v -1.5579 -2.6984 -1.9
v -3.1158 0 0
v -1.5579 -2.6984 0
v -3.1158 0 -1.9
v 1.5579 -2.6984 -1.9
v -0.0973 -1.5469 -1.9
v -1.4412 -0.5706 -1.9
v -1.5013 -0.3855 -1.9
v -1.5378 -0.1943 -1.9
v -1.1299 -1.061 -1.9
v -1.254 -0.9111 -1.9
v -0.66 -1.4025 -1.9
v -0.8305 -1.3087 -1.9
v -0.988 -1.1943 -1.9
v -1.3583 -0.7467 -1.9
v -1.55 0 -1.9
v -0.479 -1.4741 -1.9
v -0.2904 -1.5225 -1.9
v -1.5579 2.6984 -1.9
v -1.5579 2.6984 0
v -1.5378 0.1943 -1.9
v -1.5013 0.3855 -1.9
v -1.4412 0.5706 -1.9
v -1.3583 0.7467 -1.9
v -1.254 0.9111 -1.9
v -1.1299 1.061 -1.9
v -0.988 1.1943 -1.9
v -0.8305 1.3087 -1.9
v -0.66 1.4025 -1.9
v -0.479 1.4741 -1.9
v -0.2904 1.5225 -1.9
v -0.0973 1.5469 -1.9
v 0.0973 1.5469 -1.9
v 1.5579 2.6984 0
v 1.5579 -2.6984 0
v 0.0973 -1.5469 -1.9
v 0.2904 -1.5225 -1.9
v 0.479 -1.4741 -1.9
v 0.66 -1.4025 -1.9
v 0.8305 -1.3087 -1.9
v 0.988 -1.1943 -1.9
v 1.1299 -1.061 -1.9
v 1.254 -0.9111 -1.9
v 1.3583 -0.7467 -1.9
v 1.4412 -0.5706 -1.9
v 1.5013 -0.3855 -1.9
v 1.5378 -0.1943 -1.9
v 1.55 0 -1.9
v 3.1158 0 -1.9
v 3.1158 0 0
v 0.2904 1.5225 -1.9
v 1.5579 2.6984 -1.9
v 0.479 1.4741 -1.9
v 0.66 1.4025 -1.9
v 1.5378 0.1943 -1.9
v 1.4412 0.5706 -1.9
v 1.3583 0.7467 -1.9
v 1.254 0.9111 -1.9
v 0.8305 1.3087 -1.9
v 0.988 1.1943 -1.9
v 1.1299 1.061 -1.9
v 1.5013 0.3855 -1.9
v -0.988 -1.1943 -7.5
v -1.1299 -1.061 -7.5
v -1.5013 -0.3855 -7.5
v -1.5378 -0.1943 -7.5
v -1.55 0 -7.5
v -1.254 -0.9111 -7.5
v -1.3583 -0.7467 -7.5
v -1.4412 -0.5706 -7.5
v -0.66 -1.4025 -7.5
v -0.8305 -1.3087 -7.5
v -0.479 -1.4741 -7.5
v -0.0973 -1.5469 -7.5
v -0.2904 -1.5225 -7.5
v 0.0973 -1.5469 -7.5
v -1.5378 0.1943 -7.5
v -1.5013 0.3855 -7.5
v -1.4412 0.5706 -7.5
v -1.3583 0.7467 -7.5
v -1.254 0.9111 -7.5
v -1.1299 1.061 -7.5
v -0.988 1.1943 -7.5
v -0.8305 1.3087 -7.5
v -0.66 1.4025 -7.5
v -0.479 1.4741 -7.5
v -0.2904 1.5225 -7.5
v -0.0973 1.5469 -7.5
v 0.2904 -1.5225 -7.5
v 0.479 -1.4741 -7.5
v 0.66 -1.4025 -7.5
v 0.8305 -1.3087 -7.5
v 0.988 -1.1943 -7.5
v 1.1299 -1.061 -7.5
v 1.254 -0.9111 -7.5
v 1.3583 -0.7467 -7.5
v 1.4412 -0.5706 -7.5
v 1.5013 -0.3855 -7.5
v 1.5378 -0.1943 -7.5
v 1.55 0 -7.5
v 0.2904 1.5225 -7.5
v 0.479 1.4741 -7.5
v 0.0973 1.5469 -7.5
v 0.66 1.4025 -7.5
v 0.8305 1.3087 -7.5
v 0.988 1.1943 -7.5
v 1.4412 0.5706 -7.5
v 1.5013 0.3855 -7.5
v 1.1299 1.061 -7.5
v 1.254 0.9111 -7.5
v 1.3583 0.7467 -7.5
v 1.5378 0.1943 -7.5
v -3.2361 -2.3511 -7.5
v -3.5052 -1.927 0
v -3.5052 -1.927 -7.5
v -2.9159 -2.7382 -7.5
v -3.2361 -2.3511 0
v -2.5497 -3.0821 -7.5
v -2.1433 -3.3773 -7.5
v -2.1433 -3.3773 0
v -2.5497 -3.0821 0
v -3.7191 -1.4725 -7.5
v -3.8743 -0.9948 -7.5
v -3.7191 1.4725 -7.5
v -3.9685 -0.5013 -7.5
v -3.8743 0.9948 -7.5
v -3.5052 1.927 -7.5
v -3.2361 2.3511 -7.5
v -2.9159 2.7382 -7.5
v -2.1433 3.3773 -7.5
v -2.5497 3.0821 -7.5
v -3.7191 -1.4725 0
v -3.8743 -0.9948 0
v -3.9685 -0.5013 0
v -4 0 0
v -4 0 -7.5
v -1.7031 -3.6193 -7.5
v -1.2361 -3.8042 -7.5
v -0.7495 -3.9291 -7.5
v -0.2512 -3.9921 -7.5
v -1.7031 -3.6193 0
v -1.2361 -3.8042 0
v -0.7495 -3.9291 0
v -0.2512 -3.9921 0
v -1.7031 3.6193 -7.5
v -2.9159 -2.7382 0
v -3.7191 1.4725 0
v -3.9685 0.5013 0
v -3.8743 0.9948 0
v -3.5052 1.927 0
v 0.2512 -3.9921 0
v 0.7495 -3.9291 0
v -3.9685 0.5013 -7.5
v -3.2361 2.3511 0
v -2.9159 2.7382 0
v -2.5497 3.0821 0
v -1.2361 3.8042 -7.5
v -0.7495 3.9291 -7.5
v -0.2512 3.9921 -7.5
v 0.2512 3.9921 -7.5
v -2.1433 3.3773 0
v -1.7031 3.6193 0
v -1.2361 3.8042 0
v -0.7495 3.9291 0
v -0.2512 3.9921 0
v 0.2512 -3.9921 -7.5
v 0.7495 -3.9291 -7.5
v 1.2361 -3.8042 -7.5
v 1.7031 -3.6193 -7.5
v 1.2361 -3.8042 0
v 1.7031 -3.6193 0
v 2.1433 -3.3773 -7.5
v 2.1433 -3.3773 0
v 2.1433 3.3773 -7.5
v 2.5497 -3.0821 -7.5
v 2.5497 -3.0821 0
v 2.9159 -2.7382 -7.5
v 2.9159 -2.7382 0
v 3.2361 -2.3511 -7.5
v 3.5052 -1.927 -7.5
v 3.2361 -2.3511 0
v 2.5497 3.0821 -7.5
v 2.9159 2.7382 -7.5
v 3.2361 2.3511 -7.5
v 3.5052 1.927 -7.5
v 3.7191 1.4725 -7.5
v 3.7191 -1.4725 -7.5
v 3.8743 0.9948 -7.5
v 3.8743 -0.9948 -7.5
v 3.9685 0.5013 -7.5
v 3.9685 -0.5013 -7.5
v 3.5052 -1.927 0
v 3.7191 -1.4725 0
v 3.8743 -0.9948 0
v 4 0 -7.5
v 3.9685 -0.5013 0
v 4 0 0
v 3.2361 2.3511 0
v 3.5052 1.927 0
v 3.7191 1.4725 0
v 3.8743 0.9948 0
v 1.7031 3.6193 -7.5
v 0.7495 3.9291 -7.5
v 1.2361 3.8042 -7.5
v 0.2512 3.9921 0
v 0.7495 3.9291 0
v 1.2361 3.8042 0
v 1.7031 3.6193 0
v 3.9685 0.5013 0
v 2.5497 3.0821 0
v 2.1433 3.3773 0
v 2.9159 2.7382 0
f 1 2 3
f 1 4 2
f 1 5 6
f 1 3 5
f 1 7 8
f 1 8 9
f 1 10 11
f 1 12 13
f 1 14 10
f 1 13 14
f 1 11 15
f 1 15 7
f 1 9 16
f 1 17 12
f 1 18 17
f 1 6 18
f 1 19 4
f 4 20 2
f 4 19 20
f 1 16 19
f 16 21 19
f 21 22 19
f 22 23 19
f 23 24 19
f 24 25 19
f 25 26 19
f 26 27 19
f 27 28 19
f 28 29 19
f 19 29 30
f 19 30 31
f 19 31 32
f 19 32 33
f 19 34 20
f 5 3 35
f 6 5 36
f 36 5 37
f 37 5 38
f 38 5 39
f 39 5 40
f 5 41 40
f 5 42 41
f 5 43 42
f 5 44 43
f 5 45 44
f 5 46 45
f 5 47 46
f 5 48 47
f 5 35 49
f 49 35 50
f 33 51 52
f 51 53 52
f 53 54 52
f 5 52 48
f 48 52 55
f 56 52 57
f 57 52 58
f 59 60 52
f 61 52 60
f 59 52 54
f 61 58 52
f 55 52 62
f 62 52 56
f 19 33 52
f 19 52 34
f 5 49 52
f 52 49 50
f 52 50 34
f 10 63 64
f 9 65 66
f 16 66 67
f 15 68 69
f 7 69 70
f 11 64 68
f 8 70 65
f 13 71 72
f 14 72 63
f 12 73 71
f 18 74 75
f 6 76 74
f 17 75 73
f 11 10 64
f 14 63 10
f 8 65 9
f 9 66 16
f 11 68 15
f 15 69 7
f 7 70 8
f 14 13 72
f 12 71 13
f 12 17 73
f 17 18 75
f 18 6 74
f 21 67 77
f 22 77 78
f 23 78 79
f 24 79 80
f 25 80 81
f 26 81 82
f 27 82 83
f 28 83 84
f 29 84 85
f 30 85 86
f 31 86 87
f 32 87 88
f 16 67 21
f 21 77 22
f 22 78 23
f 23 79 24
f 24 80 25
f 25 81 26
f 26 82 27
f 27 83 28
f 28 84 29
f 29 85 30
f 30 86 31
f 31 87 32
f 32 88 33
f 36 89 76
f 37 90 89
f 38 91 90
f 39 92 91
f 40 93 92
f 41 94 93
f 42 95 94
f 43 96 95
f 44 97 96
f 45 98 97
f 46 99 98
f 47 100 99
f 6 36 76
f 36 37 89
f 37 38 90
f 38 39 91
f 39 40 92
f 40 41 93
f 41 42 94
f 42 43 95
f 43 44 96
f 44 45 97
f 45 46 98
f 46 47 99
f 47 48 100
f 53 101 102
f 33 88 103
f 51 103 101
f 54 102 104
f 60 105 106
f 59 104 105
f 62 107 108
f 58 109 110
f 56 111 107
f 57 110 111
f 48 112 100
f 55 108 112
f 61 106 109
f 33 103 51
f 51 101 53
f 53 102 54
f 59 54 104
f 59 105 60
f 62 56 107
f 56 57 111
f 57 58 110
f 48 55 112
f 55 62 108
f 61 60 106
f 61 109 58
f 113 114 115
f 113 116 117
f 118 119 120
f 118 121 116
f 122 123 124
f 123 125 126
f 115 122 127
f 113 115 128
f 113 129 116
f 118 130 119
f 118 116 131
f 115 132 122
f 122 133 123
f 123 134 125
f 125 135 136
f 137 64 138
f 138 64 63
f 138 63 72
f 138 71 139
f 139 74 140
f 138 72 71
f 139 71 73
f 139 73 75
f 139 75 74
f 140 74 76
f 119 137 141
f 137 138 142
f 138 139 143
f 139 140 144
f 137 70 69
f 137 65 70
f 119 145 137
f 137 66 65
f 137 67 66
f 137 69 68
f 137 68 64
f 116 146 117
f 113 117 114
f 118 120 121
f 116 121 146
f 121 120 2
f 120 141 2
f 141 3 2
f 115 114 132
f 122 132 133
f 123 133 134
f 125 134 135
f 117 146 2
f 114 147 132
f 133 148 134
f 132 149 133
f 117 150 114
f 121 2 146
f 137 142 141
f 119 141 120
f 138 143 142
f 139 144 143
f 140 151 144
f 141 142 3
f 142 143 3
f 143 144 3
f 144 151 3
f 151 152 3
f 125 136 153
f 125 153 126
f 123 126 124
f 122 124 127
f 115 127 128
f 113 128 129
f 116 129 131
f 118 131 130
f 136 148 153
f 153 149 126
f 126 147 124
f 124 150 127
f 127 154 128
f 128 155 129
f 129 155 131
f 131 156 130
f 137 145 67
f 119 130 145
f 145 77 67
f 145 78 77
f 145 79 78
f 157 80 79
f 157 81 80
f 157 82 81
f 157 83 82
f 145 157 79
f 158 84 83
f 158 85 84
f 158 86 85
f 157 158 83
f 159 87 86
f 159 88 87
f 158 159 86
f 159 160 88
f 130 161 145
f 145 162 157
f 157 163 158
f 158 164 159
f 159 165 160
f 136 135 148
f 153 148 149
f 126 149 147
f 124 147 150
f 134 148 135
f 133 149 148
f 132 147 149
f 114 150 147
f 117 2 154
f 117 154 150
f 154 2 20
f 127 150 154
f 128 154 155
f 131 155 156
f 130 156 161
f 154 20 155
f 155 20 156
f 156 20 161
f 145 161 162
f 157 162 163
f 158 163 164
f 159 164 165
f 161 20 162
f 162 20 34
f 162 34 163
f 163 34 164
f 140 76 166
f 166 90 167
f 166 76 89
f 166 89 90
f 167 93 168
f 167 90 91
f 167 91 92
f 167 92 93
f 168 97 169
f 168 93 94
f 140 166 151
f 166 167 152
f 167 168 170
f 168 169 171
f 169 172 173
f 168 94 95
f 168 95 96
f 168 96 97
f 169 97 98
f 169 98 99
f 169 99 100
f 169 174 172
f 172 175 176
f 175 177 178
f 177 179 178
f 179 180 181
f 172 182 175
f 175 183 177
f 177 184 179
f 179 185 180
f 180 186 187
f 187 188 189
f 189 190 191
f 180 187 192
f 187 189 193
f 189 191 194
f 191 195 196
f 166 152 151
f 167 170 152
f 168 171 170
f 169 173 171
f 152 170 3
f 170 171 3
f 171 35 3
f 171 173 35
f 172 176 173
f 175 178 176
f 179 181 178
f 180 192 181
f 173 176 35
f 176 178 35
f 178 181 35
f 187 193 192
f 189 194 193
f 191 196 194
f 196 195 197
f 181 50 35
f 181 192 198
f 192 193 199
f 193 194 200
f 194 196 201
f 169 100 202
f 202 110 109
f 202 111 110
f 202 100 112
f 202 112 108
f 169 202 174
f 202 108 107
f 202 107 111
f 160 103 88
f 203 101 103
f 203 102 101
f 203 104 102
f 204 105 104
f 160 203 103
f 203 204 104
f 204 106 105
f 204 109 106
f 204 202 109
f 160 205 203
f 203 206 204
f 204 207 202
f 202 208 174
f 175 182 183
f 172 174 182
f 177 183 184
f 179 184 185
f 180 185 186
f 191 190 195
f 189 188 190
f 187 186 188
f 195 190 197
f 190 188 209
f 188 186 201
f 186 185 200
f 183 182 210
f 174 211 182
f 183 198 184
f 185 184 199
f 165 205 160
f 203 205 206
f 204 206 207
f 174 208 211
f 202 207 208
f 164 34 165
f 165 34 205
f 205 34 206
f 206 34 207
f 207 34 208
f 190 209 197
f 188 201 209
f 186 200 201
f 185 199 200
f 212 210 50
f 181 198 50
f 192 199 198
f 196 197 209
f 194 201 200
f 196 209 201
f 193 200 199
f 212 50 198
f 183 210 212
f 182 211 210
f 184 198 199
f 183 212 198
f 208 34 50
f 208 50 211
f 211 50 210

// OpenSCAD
$fn = 50;

difference() {
	union() {
		translate(v = [0, 0, -7.5]) {
			cylinder(h = 7.5, r = 4.0);
		}
	}
	union() {
		translate(v = [0, 0, 0]) {
			rotate(a = [0, 0, 0]) {
				difference() {
					union() {
						translate(v = [0, 0, -1.9]) {
							linear_extrude(height = 1.9) {
								polygon(points = [[3.1158, 0.0], [1.5579000000000005, 2.698361953111554], [-1.5578999999999994, 2.6983619531115544], [-3.1158, 3.815754496783323e-16], [-1.5579000000000014, -2.6983619531115535], [1.557899999999998, -2.6983619531115552]]);
							}
						}
					}
					union();
				}
			}
		}
		#translate(v = [0, 0, -100.0]) {
			cylinder(h = 200, r = 1.55);
		}
	}
}
